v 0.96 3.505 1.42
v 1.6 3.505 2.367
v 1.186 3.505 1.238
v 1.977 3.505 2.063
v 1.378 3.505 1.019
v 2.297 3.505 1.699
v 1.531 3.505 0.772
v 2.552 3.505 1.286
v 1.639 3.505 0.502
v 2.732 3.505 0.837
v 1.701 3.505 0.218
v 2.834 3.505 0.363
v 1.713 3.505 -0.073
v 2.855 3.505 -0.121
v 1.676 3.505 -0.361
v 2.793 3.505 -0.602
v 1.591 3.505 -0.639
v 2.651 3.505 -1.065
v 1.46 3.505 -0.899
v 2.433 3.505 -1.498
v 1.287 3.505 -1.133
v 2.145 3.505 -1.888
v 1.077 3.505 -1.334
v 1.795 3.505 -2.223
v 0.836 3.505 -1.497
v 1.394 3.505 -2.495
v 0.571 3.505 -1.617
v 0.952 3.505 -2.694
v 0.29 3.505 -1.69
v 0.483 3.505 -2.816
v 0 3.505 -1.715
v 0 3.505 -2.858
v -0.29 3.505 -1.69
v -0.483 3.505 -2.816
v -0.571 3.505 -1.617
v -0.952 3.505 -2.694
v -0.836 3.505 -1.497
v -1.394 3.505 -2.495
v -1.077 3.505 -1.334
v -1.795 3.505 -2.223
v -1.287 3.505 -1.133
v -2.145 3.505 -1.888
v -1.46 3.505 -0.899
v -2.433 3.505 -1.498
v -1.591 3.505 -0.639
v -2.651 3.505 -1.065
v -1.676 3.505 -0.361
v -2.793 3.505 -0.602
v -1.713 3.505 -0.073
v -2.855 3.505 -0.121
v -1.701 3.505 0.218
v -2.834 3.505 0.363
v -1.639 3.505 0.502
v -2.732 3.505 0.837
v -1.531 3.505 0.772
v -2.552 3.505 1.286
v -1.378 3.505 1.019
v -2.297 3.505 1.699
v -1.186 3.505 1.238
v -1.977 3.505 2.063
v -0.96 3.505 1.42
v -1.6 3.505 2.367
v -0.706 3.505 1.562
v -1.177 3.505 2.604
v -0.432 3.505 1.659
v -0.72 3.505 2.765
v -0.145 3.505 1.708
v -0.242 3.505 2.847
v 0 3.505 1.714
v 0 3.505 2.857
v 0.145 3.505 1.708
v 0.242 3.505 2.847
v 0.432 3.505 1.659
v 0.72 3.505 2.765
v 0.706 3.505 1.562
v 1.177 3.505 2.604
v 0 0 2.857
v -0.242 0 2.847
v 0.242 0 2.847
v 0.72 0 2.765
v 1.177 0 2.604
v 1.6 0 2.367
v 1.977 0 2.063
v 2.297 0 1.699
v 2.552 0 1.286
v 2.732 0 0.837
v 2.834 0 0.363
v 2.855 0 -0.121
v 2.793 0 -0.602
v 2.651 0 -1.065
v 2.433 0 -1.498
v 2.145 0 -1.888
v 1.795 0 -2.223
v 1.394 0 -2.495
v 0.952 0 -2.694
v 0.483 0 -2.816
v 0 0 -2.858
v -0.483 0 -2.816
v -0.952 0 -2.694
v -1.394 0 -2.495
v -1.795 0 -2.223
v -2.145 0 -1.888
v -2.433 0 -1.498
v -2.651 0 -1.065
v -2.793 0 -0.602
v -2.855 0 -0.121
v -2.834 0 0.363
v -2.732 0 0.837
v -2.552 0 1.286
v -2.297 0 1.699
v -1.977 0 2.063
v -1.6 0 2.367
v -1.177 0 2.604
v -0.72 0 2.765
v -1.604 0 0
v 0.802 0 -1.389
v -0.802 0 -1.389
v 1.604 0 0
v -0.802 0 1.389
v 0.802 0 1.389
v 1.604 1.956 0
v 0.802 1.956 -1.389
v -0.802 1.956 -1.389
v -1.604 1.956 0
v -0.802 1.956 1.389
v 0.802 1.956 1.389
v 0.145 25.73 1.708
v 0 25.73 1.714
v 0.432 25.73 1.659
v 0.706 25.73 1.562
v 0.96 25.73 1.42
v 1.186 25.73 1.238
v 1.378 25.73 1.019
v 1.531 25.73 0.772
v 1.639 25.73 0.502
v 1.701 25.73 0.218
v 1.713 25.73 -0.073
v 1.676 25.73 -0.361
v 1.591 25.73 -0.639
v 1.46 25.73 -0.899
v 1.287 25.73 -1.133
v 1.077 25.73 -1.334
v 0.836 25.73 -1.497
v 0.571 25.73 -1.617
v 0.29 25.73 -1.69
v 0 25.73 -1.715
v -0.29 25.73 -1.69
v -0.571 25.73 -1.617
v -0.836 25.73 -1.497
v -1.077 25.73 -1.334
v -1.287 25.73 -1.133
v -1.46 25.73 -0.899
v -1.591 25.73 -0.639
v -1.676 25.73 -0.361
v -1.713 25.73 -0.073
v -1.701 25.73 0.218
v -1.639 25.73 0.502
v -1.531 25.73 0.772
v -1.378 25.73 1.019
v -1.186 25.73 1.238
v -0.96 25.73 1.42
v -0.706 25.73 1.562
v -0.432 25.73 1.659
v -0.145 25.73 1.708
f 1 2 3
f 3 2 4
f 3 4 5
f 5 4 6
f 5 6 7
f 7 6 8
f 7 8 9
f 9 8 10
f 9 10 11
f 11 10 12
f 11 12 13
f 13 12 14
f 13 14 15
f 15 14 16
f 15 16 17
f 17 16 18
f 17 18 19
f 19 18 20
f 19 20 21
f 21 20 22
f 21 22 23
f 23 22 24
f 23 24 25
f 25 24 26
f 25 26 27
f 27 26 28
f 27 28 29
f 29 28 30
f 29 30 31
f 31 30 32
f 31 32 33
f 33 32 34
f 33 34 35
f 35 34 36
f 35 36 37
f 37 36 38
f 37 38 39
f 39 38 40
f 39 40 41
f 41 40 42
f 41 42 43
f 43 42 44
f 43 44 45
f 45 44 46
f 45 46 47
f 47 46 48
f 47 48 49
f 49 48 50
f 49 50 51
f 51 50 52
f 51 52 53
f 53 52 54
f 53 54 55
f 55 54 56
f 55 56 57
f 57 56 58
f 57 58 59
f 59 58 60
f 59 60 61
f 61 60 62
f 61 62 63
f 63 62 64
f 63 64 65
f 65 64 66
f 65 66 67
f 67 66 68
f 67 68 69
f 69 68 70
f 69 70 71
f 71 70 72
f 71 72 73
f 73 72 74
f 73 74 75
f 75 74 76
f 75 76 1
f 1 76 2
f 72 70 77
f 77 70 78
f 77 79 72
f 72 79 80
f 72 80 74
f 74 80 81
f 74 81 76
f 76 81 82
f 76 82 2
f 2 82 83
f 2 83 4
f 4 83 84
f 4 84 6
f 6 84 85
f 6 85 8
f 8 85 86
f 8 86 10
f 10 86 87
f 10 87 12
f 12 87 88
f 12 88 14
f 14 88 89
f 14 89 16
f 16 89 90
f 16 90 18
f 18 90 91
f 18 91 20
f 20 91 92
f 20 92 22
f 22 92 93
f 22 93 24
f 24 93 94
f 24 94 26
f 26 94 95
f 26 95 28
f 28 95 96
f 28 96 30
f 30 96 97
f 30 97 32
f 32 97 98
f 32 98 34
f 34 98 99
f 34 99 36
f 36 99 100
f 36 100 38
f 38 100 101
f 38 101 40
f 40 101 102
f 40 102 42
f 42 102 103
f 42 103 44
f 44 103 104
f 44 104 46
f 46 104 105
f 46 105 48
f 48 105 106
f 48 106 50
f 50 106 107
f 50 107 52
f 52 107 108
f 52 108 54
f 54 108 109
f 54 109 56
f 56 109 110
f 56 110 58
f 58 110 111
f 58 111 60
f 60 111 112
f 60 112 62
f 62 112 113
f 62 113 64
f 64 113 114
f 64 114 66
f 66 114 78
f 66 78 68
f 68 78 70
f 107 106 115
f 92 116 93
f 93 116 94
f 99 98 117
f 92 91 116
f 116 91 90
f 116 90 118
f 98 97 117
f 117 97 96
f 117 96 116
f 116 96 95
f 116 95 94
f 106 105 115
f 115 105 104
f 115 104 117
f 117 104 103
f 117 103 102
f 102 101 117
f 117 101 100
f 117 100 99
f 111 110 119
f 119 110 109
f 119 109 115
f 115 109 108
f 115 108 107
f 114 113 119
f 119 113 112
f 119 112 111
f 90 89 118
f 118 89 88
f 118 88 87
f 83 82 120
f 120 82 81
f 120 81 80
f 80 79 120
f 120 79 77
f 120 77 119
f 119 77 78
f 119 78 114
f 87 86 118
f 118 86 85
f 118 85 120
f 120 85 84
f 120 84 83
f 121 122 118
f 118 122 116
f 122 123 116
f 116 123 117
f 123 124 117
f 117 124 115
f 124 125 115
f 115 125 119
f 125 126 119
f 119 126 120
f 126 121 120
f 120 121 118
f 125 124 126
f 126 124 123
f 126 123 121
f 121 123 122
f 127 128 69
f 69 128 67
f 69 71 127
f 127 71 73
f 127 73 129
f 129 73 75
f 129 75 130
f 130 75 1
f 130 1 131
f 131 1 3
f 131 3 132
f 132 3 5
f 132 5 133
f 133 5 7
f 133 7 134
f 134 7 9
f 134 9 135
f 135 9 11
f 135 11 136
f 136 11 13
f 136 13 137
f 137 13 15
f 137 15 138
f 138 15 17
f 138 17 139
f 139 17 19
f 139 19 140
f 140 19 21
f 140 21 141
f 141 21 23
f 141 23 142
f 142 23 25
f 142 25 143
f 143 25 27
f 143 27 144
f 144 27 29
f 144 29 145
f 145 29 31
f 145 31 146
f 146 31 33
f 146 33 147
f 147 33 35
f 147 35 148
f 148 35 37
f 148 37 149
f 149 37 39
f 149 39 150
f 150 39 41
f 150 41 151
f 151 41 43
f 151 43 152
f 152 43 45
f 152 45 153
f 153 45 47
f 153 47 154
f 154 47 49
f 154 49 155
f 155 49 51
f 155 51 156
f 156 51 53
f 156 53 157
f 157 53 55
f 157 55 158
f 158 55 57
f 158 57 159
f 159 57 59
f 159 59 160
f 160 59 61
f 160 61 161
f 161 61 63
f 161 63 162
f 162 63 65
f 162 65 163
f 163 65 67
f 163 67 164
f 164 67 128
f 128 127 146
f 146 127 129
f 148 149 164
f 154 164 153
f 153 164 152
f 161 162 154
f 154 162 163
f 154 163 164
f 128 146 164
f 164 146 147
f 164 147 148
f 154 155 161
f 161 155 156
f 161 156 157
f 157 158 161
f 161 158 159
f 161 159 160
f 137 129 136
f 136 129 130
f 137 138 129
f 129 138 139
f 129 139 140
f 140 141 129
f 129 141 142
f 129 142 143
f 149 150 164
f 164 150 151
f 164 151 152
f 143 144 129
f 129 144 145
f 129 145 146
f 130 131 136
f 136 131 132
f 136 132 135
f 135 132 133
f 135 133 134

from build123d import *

# Parameters (mm, degrees)
SKETCH1_R           = 2.8575
BOSS_EXTRUDE1_DEPTH = 3.5052
CUT_EXTRUDE1_DEPTH  = 1.9558
SKETCH3_R           = 1.7145
BOSS_EXTRUDE2_DEPTH = 22.225


with BuildPart() as part:
    # Sketch1 → Boss-Extrude1 (new body)
    with BuildSketch(Plane(origin=(0, 0, 0), x_dir=(1, 0, 0), z_dir=(0, 1, 0))):
        Circle(SKETCH1_R)
    extrude(amount=BOSS_EXTRUDE1_DEPTH)

    # Sketch2 → Cut-Extrude1 (cut)
    with BuildSketch(Plane.XZ):
        Polygon((1.603951217, 0), (0.801975608, 1.3890625), (-0.801975608, 1.3890625), (-1.603951217, 0), (-0.801975608, -1.3890625), (0.801975608, -1.3890625), align=None)
    extrude(amount=-CUT_EXTRUDE1_DEPTH, mode=Mode.SUBTRACT)

    # Sketch3 → Boss-Extrude2 (add)
    with BuildSketch(Plane(origin=(0, 3.5052, 0), x_dir=(1, 0, 0), z_dir=(0, 1, 0))):
        Circle(SKETCH3_R)
    extrude(amount=BOSS_EXTRUDE2_DEPTH)


solid = part.part
